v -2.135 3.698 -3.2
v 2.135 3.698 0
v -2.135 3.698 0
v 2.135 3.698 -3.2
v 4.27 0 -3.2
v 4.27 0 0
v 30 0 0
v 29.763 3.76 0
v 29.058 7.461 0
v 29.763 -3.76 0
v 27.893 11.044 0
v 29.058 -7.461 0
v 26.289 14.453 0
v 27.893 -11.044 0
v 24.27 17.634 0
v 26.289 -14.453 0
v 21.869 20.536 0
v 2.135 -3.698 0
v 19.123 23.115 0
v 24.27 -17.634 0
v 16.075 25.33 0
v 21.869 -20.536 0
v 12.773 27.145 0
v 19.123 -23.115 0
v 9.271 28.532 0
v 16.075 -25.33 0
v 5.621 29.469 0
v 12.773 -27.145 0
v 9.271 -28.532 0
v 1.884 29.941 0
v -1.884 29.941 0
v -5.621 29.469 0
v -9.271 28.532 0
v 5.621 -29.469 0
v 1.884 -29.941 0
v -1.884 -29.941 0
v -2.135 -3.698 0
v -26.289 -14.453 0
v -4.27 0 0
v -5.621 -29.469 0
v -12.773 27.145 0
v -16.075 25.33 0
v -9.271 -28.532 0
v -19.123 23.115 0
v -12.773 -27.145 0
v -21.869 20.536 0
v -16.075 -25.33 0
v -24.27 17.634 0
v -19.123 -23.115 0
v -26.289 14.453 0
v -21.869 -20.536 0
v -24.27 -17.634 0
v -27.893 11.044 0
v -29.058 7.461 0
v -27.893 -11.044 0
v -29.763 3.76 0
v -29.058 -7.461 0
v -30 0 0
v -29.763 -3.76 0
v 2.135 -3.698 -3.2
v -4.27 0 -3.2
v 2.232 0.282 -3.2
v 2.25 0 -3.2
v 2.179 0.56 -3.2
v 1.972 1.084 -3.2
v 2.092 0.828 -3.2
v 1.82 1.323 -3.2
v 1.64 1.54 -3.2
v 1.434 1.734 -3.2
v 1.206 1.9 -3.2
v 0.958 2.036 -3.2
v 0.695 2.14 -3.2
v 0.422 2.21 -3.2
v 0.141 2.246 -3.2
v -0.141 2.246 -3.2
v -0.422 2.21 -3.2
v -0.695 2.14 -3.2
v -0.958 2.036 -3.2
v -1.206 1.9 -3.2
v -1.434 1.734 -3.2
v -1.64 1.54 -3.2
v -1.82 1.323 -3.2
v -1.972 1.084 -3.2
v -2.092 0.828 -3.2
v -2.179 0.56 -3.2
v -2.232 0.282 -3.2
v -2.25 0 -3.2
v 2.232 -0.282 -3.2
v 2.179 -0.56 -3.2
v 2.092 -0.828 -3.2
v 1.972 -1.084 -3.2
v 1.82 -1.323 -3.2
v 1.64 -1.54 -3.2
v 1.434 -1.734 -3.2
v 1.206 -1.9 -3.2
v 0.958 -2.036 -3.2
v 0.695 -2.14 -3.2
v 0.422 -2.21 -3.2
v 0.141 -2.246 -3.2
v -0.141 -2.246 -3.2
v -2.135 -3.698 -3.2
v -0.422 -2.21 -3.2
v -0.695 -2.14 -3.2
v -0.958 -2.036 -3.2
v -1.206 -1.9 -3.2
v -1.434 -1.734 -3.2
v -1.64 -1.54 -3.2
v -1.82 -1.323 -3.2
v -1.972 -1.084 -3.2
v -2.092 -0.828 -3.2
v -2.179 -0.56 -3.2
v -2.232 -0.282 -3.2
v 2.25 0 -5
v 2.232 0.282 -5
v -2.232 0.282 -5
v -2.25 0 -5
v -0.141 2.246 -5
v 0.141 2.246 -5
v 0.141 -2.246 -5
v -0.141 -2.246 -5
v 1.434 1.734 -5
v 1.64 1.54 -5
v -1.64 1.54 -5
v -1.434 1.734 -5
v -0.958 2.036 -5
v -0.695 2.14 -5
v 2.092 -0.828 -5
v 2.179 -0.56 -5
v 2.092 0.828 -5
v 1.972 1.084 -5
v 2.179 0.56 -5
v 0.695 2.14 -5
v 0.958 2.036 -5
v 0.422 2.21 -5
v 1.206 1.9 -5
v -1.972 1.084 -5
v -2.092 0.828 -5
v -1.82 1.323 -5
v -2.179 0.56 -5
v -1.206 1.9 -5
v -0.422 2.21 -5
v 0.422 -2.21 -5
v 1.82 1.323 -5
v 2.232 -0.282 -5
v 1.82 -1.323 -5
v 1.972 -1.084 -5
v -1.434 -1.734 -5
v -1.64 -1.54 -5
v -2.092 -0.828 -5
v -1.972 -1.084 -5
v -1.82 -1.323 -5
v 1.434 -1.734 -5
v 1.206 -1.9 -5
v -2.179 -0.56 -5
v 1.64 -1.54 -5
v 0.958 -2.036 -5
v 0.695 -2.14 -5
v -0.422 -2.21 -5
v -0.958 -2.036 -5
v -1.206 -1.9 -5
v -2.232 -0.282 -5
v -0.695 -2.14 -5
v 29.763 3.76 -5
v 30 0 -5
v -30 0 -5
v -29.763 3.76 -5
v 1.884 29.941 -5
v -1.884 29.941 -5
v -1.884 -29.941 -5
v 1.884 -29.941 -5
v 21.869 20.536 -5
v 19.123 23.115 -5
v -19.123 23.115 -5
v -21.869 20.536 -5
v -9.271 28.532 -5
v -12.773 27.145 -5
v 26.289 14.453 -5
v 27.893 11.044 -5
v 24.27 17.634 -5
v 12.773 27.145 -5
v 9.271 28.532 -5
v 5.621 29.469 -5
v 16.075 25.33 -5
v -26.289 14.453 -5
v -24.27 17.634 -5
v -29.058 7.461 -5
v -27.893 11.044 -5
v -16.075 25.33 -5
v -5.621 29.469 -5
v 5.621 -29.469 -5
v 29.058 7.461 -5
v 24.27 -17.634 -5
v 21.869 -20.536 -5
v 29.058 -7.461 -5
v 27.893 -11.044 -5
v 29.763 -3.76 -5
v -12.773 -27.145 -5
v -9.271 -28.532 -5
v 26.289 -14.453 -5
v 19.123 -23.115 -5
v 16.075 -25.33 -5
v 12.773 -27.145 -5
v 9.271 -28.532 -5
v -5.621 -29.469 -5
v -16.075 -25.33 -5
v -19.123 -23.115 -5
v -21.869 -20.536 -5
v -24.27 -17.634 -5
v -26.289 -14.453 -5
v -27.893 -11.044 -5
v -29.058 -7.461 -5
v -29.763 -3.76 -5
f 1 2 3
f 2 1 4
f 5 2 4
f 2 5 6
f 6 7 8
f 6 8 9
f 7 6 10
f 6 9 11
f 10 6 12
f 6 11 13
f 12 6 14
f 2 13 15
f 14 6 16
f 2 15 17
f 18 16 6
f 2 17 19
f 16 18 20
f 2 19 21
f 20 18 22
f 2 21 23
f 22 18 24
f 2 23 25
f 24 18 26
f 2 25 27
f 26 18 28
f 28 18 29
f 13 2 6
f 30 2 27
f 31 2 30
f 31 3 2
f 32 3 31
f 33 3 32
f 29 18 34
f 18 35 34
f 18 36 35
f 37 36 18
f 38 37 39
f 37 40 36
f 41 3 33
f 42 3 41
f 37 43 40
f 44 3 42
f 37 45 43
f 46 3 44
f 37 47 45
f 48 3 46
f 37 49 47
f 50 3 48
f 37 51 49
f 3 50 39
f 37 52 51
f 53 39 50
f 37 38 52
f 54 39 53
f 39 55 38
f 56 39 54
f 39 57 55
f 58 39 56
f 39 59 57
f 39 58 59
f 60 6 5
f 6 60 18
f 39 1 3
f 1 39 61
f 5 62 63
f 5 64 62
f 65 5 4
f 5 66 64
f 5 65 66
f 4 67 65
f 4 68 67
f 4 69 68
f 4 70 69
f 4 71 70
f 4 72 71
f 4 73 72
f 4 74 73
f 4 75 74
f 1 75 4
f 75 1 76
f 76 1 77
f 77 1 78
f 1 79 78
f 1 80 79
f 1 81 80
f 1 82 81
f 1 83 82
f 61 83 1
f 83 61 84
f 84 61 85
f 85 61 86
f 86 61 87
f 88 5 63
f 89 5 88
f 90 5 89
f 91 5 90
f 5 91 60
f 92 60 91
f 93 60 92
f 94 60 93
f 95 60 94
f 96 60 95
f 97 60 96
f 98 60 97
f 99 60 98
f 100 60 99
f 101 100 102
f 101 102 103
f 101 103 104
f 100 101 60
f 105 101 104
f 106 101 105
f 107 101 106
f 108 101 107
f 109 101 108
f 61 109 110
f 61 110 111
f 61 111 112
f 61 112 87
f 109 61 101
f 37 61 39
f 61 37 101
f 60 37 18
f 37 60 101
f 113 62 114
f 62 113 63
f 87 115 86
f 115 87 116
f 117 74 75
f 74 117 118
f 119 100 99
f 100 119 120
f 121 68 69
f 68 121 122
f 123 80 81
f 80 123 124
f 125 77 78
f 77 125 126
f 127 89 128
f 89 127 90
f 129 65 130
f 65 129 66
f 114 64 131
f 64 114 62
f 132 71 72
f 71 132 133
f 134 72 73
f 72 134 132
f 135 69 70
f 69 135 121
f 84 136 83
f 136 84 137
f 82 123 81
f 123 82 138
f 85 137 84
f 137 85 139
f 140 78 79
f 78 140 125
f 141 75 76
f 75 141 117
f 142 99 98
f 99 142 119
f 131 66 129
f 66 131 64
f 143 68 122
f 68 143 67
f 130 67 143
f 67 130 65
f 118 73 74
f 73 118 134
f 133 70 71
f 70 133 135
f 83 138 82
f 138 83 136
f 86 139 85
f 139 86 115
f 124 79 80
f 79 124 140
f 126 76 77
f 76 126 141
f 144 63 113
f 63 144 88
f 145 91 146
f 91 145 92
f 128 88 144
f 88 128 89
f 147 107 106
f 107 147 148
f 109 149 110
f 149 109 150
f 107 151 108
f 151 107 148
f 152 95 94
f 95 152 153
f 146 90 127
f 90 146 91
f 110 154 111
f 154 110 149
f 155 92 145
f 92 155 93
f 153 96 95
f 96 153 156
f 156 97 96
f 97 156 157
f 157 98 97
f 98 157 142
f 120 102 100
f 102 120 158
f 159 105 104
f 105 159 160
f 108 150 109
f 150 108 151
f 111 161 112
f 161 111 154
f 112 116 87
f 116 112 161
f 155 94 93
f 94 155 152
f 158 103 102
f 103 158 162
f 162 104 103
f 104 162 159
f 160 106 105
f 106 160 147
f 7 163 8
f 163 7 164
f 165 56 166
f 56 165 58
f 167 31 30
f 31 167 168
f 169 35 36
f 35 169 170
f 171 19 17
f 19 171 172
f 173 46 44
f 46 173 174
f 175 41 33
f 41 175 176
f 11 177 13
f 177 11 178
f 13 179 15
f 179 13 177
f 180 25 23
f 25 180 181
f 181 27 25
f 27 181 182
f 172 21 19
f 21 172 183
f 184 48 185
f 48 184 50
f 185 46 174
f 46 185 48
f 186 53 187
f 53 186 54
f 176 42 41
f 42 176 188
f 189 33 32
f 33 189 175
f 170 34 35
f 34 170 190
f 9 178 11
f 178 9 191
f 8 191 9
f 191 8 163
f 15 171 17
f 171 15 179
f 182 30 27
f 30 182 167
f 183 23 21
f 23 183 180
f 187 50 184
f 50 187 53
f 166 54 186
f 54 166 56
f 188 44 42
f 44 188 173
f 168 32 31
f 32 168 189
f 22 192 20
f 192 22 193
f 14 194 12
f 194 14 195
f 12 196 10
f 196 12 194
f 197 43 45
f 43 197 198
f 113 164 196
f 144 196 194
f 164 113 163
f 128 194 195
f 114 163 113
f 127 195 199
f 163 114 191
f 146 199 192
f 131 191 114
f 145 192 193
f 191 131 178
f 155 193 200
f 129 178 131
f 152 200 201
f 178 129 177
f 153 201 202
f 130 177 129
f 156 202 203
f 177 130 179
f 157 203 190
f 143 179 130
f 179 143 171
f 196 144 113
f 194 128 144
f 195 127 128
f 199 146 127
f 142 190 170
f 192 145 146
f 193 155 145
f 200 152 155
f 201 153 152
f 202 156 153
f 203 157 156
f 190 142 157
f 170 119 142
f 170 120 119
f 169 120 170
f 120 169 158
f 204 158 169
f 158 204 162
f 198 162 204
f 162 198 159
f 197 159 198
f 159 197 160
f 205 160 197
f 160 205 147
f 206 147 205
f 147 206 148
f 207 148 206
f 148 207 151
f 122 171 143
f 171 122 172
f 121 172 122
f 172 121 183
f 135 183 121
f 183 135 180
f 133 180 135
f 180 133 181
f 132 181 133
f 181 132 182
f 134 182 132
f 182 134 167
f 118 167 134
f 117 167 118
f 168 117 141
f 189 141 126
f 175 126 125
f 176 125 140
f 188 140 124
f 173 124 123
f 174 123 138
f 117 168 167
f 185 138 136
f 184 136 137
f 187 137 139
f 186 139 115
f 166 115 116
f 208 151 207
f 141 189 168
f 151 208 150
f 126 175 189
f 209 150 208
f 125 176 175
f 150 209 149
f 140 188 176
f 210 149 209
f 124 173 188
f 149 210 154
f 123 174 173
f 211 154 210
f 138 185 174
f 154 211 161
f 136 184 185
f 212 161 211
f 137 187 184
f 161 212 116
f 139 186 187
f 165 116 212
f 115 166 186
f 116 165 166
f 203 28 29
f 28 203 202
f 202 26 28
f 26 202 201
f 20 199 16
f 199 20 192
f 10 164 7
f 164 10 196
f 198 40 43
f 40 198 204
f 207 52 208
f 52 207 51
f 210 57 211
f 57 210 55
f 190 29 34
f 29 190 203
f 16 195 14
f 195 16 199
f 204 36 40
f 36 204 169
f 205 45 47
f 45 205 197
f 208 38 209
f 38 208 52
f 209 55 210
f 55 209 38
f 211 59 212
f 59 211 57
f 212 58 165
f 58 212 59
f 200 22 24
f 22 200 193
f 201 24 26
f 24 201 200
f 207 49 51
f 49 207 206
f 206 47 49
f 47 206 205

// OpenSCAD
$fn = 50;

difference() {
	union() {
		translate(v = [0, 0, -5.0]) {
			cylinder(h = 5.0, r = 30.0);
		}
	}
	union() {
		translate(v = [0, 0, 0]) {
			rotate(a = [0, 0, 0]) {
				difference() {
					union() {
						translate(v = [0, 0, -3.2]) {
							linear_extrude(height = 3.2) {
								polygon(points = [[4.2698, 0.0], [2.1349000000000005, 3.697755269078796], [-2.134899999999999, 3.6977552690787965], [-4.2698, 5.228996902999369e-16], [-2.134900000000002, -3.6977552690787956], [2.1348999999999974, -3.697755269078798]]);
							}
						}
					}
					union();
				}
			}
		}
		#translate(v = [0, 0, -100.0]) {
			cylinder(h = 200, r = 2.25);
		}
	}
}
